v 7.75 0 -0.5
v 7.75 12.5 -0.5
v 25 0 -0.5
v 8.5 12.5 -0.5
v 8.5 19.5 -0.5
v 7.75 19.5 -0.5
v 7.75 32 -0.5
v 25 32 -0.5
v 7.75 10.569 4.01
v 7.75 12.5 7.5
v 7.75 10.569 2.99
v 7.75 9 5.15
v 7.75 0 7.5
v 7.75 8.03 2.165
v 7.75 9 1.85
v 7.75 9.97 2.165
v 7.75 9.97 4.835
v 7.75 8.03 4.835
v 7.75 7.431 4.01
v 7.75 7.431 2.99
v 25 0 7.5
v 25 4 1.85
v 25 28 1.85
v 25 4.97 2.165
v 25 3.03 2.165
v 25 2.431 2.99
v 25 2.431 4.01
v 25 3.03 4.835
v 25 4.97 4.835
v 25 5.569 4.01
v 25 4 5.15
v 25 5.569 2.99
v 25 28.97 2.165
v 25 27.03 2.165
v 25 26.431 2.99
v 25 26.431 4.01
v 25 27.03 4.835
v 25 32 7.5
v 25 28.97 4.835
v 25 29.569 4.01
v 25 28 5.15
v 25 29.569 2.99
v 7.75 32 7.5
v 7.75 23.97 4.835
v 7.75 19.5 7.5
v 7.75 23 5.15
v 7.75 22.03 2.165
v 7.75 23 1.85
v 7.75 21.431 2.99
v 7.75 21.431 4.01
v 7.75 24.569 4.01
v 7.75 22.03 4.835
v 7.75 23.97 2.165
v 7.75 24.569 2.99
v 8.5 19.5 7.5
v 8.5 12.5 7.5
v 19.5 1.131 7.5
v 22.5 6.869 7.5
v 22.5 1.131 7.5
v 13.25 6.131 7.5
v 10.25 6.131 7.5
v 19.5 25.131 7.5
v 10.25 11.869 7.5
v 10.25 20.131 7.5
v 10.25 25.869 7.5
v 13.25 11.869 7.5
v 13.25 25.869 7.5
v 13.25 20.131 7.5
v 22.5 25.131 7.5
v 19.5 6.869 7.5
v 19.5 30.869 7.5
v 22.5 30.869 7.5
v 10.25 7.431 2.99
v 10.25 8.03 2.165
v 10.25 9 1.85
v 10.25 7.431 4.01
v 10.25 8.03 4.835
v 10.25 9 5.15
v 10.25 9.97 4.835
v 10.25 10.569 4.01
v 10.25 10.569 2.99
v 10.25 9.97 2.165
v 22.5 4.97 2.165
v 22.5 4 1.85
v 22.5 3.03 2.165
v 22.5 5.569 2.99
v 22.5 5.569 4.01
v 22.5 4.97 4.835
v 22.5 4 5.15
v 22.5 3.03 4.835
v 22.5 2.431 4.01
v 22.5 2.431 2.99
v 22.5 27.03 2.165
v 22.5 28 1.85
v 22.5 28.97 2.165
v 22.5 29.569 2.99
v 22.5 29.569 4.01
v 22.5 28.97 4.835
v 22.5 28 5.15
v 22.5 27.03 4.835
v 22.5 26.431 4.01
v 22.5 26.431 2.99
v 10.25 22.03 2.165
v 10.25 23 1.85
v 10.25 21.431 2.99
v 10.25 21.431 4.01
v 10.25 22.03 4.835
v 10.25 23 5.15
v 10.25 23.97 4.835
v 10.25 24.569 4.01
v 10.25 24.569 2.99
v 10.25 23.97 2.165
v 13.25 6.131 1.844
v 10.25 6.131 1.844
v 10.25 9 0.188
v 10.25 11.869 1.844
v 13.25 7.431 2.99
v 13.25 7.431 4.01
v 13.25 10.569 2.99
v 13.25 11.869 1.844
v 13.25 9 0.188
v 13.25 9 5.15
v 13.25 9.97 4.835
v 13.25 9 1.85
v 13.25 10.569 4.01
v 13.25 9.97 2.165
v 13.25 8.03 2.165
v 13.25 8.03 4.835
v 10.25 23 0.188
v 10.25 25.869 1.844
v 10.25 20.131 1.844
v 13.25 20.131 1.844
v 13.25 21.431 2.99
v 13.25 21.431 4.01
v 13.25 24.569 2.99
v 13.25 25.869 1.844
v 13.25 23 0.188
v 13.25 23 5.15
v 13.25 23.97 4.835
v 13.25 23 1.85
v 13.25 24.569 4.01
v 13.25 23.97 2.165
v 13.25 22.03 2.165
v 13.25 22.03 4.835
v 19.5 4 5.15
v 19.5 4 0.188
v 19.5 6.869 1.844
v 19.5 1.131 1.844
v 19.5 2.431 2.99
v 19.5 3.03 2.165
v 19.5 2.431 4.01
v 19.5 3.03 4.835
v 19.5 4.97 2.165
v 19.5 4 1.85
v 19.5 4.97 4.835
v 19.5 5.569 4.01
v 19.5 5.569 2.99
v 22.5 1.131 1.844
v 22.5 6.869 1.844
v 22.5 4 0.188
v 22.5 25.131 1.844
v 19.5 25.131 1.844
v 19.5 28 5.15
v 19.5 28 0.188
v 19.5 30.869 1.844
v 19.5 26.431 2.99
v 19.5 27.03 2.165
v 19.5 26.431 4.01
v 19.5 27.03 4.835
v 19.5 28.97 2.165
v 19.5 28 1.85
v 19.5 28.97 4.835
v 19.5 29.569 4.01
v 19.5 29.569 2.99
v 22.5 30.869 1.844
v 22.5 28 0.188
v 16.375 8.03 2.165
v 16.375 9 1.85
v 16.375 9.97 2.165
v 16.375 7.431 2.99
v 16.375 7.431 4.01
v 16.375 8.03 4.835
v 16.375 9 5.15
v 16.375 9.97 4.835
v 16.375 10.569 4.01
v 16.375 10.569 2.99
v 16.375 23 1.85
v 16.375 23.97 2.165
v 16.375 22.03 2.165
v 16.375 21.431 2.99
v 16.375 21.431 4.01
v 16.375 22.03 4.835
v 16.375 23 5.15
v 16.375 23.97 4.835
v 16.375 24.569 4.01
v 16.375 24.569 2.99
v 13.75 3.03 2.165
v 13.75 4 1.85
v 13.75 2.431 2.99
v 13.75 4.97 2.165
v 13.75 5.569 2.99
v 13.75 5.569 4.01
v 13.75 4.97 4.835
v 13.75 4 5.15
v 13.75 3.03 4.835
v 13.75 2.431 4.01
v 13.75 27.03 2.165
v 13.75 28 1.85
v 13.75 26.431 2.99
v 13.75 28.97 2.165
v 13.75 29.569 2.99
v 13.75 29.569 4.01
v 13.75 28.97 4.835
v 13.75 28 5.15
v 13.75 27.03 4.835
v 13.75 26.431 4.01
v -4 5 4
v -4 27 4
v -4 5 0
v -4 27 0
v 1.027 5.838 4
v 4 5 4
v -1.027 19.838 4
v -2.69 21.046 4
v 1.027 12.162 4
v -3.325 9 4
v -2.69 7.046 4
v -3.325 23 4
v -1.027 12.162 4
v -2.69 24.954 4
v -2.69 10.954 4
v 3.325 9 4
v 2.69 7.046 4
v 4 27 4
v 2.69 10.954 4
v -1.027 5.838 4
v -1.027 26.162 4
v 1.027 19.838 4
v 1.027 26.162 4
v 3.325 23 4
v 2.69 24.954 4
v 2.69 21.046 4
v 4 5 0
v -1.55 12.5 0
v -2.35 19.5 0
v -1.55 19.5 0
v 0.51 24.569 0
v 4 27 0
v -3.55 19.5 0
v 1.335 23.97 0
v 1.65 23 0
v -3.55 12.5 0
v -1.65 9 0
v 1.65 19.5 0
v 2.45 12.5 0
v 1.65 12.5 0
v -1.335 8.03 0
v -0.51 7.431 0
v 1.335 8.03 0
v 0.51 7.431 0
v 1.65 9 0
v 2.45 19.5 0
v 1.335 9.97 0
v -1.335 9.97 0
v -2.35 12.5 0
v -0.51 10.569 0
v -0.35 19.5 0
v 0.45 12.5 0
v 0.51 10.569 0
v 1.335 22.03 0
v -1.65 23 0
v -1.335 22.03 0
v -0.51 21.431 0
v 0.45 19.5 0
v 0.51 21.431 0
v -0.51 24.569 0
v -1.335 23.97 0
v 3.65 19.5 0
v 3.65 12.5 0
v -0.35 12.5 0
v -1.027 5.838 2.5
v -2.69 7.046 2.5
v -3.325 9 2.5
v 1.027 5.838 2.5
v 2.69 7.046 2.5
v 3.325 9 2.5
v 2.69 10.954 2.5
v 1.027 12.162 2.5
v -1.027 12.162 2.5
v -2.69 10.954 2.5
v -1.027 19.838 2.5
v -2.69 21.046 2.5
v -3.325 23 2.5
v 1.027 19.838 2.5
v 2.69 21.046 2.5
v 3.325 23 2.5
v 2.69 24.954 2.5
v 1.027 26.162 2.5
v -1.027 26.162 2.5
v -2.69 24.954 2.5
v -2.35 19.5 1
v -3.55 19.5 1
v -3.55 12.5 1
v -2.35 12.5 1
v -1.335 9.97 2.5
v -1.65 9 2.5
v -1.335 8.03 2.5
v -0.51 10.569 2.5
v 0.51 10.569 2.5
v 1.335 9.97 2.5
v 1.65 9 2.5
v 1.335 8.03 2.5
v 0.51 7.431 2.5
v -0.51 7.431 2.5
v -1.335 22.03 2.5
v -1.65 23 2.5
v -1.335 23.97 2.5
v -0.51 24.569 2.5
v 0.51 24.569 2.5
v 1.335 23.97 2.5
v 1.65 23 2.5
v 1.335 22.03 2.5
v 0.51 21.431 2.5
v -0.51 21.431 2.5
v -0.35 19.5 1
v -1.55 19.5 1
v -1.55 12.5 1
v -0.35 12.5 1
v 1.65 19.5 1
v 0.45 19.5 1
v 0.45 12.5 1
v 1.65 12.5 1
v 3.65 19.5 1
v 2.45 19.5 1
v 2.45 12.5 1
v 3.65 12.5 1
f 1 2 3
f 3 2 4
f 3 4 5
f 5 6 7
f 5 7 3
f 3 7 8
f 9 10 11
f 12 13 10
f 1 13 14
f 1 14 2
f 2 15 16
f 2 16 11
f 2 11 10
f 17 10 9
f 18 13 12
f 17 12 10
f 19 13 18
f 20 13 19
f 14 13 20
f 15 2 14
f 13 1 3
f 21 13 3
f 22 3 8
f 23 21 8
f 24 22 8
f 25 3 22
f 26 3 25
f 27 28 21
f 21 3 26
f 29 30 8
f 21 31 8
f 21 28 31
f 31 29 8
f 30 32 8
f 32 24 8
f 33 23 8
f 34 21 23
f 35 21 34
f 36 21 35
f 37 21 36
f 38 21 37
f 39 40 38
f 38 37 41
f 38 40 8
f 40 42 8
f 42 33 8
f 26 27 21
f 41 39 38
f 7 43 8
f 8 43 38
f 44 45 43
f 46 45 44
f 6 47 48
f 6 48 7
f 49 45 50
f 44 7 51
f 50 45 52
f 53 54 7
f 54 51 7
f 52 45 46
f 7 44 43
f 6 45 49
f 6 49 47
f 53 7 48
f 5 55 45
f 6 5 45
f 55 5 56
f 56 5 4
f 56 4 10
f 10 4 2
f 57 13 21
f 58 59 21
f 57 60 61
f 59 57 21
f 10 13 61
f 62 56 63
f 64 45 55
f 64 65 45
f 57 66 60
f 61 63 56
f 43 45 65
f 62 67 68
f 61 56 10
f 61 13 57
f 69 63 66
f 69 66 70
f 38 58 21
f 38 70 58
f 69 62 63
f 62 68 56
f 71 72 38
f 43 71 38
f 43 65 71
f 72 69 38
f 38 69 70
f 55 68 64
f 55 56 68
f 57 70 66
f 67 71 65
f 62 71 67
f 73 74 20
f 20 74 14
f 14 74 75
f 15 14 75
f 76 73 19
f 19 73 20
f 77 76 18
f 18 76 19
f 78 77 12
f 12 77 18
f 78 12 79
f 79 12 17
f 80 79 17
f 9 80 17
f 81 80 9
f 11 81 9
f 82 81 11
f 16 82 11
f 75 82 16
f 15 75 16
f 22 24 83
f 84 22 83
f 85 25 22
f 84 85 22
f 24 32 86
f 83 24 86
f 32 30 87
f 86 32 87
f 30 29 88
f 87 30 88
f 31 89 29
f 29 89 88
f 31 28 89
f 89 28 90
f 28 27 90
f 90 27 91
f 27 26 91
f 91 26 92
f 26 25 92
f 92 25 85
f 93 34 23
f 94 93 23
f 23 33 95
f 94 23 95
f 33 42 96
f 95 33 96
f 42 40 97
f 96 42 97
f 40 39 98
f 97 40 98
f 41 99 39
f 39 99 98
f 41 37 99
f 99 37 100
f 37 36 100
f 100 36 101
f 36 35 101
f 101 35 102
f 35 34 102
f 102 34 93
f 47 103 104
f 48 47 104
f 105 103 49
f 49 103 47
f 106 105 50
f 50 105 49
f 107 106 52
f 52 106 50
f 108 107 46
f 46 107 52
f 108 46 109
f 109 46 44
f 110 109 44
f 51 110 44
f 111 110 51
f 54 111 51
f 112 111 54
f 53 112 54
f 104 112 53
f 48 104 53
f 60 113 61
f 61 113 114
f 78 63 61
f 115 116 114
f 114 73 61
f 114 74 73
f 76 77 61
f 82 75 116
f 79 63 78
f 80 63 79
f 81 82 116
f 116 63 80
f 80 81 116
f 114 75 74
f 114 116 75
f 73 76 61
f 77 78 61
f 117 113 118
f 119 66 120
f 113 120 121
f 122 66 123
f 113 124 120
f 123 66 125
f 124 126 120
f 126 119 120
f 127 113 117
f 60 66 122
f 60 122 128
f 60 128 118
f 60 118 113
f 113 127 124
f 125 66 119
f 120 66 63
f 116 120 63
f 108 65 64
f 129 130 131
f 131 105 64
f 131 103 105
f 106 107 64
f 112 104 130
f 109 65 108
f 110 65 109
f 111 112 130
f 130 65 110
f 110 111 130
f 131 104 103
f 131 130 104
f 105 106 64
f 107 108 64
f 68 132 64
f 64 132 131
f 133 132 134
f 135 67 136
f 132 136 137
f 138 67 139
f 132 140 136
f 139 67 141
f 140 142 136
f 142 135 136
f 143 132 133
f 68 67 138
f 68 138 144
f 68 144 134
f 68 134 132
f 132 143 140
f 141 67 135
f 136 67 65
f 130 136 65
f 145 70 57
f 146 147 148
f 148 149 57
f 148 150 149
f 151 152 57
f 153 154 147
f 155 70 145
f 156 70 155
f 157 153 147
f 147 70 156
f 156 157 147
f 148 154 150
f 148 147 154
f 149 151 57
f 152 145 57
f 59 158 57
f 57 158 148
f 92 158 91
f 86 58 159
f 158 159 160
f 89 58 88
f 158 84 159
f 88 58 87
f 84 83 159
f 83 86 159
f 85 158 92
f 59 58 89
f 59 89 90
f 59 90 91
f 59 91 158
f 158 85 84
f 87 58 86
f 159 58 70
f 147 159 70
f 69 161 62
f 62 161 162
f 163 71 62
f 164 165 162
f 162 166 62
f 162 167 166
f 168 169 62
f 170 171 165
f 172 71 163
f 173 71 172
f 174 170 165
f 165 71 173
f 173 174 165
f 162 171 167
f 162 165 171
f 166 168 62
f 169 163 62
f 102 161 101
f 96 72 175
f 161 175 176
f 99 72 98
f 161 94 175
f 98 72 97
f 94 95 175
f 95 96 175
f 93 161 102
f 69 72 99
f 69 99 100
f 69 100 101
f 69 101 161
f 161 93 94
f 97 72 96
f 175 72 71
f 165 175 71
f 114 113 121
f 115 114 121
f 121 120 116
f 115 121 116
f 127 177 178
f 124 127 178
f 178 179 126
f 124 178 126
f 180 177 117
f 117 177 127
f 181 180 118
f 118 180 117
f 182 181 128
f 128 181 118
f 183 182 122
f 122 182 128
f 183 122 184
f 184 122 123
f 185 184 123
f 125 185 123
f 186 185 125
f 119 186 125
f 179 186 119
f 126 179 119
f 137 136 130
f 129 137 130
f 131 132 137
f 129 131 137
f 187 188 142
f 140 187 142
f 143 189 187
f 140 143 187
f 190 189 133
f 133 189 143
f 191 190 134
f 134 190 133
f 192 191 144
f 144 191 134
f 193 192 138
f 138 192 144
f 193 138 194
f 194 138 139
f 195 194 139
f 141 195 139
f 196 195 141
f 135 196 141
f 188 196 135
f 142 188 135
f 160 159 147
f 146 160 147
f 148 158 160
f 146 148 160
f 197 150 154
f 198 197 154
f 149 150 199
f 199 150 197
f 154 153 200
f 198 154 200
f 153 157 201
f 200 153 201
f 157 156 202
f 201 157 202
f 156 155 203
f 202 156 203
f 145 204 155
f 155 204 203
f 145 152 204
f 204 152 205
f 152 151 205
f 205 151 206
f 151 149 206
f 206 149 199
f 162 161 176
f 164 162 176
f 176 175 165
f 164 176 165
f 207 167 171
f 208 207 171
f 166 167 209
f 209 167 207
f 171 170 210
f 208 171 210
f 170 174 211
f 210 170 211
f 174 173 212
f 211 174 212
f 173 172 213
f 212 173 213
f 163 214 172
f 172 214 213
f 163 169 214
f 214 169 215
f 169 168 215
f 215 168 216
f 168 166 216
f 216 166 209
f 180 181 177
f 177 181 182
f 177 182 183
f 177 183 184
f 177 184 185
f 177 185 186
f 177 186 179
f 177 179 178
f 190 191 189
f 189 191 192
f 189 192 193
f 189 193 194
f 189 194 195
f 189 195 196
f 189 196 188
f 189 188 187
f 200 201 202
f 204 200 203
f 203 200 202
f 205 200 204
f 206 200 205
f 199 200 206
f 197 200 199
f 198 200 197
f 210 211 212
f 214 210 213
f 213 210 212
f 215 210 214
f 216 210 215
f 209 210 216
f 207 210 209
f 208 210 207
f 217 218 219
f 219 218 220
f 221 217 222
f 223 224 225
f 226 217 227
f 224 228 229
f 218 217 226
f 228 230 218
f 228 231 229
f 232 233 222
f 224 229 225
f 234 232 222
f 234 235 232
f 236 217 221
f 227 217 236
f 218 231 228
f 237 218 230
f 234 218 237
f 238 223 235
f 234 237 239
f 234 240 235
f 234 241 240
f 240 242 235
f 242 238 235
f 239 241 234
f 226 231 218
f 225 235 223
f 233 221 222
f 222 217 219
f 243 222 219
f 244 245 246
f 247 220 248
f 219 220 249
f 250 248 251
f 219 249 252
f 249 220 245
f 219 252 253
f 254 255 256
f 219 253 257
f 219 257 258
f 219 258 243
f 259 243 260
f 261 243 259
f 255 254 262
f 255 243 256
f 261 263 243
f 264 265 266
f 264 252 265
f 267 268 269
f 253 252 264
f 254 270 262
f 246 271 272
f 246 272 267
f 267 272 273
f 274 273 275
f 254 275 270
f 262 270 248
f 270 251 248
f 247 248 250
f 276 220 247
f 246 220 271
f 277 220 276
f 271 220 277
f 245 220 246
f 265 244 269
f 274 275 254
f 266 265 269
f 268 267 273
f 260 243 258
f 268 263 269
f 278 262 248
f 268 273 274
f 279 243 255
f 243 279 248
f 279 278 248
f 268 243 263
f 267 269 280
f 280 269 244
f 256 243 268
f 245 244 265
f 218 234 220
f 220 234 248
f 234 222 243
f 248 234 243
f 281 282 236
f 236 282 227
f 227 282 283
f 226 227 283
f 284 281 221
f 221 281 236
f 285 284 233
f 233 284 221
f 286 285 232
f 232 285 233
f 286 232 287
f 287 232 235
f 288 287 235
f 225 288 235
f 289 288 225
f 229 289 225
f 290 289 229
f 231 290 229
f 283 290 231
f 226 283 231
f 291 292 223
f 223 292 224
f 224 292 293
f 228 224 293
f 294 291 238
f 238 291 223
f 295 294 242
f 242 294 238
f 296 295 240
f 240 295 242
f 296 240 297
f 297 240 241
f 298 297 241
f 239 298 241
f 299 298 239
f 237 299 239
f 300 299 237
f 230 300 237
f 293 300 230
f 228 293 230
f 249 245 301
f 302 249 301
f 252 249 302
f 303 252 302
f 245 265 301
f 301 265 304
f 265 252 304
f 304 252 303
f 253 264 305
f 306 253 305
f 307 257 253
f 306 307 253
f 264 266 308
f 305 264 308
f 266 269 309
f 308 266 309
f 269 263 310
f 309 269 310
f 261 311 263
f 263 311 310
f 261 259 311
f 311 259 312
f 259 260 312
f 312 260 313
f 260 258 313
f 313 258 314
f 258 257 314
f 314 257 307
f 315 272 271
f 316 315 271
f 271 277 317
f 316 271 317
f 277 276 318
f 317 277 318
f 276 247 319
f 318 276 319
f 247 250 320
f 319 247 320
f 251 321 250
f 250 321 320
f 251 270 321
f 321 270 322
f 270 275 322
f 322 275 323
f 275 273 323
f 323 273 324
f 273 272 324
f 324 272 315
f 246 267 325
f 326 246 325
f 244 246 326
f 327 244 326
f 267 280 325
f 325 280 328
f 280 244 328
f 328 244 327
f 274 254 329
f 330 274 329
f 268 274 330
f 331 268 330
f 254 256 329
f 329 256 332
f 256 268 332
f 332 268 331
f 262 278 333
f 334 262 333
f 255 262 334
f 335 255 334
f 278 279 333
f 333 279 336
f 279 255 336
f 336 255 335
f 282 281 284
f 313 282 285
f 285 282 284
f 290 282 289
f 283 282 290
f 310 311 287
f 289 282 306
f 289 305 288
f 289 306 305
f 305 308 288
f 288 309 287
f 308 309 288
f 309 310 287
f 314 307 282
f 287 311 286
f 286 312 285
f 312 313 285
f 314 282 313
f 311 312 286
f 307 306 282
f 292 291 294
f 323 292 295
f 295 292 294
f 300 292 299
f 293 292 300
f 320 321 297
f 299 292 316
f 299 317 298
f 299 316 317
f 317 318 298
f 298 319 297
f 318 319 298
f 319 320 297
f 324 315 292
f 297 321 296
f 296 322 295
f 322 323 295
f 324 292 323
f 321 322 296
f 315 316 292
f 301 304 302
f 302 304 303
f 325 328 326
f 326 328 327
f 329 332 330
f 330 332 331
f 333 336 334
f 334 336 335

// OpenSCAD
/**
 * YBeltHolder for i3 Steel
 *
 * Created by DViejo
 * 27/Oct/2014
 *
 *  If you like the original prusa's ybeltholder part, then you'll love to use this one
 * in your i3 steel as it allows for a straight belt. This should be used with the 
 * YIdlerSteel also included in this project 
 */

belt_tooth_distance = 2;
belt_tooth_ratio = 0.8; //0.675//0.5;

holeSeparation = 24;

holeSeparation2 = 14;

height = 15.5+1.75;

module heels()
{
  difference()
  {
    translate([-8/2, 0, 0]) 
    {
      cube([8, 32, height]);
    }
    
    //belt slit
    translate([-4.5, (32-7)/2, height-0.75]) cube([9, 7, 1]);
    
    for(i = [-1, 1])
    {
      //bolts
      translate([0, (32-i*holeSeparation)/2, -1]) cylinder(r=1.65, h=height-5, $fn=10);
      
      //nuts
      hull()
      {
	translate([0, (32+i*holeSeparation)/2, 2.5]) cylinder(r=6.625/2, h=3, $fn=6);
	translate([10, (32+i*holeSeparation)/2, 2.5]) cylinder(r=6.625/2, h=3, $fn=6);
      }
      
      translate([0, (32+i*holeSeparation2)/2, height/2]) cylinder(r=1.65, h=height/2+1, $fn=10);    
      
      //nuts
      hull()
      {
	translate([0, (32+i*holeSeparation2)/2, height-5.5]) cylinder(r=6.625/2, h=3, $fn=6);
	translate([10, (32+i*+holeSeparation2)/2, height-5.5]) cylinder(r=6.625/2, h=3, $fn=6);
      }
    }
    
  }
}

module head()
{
  difference()
  {
    translate([-8/2, 10/2, 0]) 
    {
      cube([8, 32-10, 4]);
    }
    
    //bolts
    for(i = [-1, 1])
    {
      translate([0, (32+i*holeSeparation2)/2, -1]) cylinder(r=1.65, h=height+2, $fn=10);
      translate([0, (32+i*holeSeparation2)/2, -1]) cylinder(r=6.65/2, h=2.5, $fn=10);
    }

    //teeth
    for ( i = [0 : 8] ){
      translate([10.35-i*belt_tooth_distance,(32-7)/2,3]) cube([belt_tooth_distance-belt_tooth_ratio,7,6]);
    }

  }
}


module belt_holder_base(){
 translate([-33-8.5, 0,-1-8]) cube([33,26,16+6]);
 translate([-33-8.5, 22, -1-8]) cube([33, 4, 16+16]);	
}

module belt_holder_beltcut(){
 position_tweak=-0.2;
 // Belt slit
 translate([-66,-0.5+10,belt_tooth_distance+1]) cube([67,0.8,15]);
 // Smooth insert cutout
 translate([-66,-0.5+10,12]) rotate([45,0,0]) cube([67,15,15]);
 // Individual teeth
 for ( i = [0 : 23] ){
  translate([0-i*belt_tooth_distance+position_tweak,-0.5+8,3]) cube([belt_tooth_distance-belt_tooth_ratio,2.8,15]);
 }
 // Middle opening
 translate([-2-25,-1,3]) cube([4,11,15]);	
}

module belt_holder_holes(){
 translate([-45.5,0,7.5]) rotate([-90,0,0]) cylinder(h=30, r=1.7, $fn=10);
 
 //new holes
 translate([-25 - 17.5/2, 15, 6.5 + 23.5/2]) rotate([-90,0,0]) cylinder(h=15, r=1.7, $fn=10);
 translate([-25 + 17.5/2, 15, 6.5 + 23.5/2]) rotate([-90,0,0]) cylinder(h=15, r=1.7, $fn=10);
 translate([-25 - 17.5/2, 15, 6.5 - 23.5/2]) rotate([-90,0,0]) cylinder(h=15, r=1.7, $fn=10);
 translate([-25 + 17.5/2, 15, 6.5 - 23.5/2]) rotate([-90,0,0]) cylinder(h=15, r=1.7, $fn=10);

 
 //nuts
 translate([-25 - 17.5/2, 20, 6.5 + 23.5/2]) rotate([-90,0,0]) cylinder(h=4, r=6.65/2, $fn=6);
 translate([-25 + 17.5/2, 20, 6.5 + 23.5/2]) rotate([-90,0,0]) cylinder(h=4, r=6.65/2, $fn=6);
 hull()
 {
    translate([-25 - 17.5/2, 18, 6.5 - 23.5/2]) rotate([-90,0,0]) cylinder(h=4, r=6.65/2, $fn=6);
    translate([-25 - 17.5/2, 18, 6.5 - 23.5]) rotate([-90,0,0]) cylinder(h=4, r=6.65/2, $fn=6);
 }
 
 hull()
 {
    translate([-25 + 17.5/2, 18, 6.5 - 23.5/2]) rotate([-90,0,0]) cylinder(h=4, r=6.65/2, $fn=6);
    translate([-25 + 17.5/2, 18, 6.5 - 23.5]) rotate([-90,0,0]) cylinder(h=4, r=6.65/2, $fn=6);
 }
 
 rotate([-50, 0, 0]) 
   translate([-33-8.5-1, -7, -20])
    cube([35, 25, 19]);
}

// Final part
module belt_holder(){
 difference(){
  belt_holder_base();
  translate([0, 0, -2]) belt_holder_beltcut();
  belt_holder_holes();
 }
}



translate([25, 0, 3.5]) rotate([0, -90, 0])
heels();
translate([0, 0, 4]) rotate([0, 180, 0]) head();
